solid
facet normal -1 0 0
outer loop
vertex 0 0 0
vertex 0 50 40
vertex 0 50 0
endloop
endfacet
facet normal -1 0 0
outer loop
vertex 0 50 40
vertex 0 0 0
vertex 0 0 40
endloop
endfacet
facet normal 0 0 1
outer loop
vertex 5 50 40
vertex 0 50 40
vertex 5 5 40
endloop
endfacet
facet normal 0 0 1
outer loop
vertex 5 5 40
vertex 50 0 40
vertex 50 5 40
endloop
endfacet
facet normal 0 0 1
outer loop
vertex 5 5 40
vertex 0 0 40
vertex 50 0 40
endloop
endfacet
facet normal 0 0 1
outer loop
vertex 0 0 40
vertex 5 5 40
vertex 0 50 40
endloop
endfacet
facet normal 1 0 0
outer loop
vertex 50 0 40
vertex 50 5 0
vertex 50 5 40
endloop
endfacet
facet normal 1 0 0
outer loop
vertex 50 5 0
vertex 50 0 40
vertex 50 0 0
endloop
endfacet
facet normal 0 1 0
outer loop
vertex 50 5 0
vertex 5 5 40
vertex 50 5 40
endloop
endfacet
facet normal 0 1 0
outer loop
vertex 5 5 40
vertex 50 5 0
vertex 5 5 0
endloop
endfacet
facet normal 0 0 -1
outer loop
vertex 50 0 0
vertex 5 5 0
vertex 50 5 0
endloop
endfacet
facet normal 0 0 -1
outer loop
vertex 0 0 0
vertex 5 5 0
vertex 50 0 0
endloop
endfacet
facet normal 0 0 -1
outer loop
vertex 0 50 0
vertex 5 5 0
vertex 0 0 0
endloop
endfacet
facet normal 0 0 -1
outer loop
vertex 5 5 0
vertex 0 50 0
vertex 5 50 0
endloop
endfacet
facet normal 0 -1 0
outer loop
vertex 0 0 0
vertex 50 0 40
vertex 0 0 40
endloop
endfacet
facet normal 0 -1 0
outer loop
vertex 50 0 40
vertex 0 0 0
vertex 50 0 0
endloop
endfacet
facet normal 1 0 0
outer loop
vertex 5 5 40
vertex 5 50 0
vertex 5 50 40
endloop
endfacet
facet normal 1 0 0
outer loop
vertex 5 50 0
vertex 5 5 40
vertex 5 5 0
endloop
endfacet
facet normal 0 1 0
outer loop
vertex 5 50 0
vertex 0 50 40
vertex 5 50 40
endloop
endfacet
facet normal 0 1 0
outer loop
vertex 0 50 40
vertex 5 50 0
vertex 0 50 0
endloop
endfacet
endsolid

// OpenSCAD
module L_bracket(width, height, thickness) {
  union() {
    cube([width, thickness, height]);
    cube([thickness, width, height]);
  }
}

L_bracket(50, 40, 5);
